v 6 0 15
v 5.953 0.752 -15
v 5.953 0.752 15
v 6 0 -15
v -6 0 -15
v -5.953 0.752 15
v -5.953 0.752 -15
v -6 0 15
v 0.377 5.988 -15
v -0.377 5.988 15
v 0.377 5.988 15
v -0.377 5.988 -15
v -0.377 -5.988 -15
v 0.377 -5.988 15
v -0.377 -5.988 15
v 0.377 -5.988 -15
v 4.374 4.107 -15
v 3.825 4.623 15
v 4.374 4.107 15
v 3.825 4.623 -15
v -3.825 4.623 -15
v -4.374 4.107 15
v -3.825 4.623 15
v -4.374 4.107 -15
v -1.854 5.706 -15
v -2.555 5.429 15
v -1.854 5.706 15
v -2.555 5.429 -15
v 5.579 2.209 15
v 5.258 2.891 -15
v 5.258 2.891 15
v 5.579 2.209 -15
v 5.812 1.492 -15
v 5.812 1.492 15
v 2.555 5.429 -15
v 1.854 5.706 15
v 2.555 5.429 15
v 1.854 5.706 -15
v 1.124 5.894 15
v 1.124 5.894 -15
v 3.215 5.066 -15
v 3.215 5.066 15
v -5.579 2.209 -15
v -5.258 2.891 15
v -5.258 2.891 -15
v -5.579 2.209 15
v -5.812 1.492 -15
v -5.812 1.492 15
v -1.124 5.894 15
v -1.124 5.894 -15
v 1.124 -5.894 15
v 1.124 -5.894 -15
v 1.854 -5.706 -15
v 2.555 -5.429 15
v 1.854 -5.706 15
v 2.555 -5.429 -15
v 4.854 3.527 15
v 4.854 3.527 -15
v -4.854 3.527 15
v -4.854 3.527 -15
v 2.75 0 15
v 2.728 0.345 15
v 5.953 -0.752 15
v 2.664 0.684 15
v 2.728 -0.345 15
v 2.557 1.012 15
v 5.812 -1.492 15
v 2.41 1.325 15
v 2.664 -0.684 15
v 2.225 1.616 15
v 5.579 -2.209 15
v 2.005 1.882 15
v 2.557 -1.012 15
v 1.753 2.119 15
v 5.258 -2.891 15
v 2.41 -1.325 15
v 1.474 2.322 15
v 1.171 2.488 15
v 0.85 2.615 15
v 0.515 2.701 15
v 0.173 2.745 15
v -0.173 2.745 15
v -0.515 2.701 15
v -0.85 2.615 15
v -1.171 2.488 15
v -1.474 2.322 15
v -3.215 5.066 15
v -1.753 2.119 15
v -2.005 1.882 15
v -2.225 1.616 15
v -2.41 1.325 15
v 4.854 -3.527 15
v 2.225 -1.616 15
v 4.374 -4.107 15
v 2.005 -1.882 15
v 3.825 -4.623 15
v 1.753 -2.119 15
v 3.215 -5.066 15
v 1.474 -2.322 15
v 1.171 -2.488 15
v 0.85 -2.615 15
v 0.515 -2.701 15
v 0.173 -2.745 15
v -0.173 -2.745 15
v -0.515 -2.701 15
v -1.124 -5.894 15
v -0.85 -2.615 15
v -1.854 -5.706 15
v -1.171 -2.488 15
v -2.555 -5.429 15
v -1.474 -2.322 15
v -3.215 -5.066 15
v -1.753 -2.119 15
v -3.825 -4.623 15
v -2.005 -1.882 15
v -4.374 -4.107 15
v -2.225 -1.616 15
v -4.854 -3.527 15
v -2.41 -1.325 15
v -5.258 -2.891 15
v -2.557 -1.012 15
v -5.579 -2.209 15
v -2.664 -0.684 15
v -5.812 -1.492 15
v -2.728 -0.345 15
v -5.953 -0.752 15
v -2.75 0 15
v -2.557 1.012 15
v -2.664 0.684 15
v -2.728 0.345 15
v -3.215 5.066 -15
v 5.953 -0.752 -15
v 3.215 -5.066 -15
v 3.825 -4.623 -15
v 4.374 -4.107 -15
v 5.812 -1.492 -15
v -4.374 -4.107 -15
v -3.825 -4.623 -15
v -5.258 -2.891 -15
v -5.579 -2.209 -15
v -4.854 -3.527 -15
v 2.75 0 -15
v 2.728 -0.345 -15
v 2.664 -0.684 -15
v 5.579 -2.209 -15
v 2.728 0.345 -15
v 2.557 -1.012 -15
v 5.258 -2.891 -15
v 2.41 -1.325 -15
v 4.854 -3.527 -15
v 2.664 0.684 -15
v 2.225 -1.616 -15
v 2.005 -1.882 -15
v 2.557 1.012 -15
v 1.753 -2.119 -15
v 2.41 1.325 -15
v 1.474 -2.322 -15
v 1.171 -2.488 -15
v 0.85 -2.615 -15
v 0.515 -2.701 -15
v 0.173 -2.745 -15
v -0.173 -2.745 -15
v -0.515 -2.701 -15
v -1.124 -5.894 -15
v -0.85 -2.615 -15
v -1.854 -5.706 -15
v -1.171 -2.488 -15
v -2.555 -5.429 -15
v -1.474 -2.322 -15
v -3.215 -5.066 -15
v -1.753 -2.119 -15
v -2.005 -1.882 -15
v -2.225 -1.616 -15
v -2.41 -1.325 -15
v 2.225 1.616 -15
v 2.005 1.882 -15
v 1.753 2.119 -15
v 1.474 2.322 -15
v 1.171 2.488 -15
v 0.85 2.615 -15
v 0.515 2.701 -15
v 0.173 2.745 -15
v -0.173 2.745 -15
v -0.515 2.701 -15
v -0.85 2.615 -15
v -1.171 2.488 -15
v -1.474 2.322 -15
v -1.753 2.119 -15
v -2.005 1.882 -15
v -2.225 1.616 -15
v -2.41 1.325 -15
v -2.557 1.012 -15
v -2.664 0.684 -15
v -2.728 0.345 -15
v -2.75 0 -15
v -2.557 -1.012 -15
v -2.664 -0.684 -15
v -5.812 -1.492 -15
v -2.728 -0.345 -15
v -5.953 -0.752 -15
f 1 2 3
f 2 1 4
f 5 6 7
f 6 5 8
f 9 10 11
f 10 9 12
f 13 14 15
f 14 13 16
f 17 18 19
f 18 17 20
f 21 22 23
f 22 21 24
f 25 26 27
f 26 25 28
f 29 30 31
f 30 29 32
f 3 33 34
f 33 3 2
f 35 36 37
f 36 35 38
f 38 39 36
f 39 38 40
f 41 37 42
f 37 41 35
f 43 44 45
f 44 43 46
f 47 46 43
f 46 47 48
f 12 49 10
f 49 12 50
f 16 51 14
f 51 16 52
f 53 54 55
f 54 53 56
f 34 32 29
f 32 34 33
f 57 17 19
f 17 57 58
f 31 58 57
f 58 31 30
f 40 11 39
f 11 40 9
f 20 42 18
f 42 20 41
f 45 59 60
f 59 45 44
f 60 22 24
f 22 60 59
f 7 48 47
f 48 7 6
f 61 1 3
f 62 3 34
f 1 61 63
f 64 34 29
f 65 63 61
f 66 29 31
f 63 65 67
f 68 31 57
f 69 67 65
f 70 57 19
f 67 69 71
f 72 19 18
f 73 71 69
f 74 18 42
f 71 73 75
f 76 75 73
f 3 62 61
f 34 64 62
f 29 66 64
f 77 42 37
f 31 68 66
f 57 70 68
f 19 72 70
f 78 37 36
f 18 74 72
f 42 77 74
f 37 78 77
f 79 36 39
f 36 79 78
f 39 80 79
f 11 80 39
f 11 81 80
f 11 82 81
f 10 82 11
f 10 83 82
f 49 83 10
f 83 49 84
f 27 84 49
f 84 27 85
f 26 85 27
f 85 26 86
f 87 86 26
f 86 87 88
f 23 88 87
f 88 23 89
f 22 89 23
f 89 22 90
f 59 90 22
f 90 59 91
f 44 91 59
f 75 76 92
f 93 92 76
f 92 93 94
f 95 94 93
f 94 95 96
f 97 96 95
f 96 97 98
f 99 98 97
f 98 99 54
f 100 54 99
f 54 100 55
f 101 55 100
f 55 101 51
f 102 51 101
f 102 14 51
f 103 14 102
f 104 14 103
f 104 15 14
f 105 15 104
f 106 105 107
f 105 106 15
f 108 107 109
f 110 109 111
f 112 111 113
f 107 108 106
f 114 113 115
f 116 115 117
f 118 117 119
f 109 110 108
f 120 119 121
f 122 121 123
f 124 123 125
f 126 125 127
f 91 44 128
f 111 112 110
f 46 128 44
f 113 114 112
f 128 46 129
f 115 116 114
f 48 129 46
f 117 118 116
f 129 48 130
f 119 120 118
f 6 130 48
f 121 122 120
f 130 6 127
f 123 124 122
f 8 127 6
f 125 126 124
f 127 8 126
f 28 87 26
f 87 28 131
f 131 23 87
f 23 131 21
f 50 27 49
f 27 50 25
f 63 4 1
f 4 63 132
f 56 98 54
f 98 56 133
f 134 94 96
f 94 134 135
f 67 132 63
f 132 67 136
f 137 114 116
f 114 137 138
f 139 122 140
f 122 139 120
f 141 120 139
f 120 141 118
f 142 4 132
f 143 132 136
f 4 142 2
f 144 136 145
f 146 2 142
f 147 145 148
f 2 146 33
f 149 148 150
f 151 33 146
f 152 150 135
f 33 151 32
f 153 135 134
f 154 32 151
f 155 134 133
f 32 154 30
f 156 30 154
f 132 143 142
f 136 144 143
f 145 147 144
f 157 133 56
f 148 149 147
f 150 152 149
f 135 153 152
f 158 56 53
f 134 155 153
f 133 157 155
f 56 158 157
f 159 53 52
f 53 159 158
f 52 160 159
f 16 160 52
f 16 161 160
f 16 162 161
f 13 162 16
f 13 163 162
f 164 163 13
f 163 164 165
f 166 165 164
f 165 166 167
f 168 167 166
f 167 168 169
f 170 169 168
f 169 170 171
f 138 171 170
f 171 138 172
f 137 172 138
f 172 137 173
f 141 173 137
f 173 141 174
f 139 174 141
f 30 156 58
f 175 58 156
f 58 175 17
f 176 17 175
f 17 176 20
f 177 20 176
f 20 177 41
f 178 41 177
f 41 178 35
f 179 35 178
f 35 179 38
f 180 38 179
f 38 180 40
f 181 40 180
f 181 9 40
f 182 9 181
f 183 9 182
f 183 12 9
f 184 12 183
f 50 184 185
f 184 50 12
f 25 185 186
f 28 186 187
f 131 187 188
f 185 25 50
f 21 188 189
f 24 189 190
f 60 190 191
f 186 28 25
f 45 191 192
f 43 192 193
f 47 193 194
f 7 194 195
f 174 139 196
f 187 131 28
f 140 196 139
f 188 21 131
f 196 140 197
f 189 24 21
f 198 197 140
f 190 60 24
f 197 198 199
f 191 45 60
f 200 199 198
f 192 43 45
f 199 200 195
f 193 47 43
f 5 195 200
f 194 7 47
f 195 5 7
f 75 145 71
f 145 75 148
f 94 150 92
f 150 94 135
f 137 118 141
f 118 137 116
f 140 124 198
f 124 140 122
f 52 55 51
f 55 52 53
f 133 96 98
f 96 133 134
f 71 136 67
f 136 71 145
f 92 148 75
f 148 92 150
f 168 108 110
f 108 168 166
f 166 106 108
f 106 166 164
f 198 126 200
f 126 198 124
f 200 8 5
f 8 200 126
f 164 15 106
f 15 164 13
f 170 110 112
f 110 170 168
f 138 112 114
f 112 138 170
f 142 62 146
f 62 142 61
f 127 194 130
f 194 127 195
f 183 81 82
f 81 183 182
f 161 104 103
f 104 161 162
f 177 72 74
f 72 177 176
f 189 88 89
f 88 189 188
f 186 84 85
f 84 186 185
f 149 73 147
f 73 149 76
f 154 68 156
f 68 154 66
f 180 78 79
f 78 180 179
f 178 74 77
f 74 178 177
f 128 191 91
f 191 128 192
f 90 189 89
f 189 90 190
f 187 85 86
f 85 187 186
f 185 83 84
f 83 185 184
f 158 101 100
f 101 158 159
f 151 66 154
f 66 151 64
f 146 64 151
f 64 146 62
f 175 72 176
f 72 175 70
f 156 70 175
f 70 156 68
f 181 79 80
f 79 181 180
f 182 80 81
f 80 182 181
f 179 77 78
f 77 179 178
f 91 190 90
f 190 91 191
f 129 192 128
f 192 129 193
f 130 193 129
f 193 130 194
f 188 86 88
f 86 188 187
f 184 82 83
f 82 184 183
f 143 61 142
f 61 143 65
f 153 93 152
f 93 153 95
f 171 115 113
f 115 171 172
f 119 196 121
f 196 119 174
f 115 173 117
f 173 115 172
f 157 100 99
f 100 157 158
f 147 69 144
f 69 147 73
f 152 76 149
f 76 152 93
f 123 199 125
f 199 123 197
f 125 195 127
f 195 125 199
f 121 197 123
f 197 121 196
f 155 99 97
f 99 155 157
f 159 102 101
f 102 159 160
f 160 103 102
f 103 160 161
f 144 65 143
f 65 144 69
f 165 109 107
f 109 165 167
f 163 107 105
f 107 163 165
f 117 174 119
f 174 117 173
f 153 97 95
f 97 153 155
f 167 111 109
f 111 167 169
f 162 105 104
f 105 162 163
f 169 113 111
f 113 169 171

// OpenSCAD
$fn = 50;


difference() {
	union() {
		translate(v = [0, 0, -15.0000000000]) {
			cylinder(h = 30, r = 6.0000000000);
		}
	}
	union() {
		translate(v = [0, 0, -100.0000000000]) {
			cylinder(h = 200, r = 2.7500000000);
		}
	}
}
